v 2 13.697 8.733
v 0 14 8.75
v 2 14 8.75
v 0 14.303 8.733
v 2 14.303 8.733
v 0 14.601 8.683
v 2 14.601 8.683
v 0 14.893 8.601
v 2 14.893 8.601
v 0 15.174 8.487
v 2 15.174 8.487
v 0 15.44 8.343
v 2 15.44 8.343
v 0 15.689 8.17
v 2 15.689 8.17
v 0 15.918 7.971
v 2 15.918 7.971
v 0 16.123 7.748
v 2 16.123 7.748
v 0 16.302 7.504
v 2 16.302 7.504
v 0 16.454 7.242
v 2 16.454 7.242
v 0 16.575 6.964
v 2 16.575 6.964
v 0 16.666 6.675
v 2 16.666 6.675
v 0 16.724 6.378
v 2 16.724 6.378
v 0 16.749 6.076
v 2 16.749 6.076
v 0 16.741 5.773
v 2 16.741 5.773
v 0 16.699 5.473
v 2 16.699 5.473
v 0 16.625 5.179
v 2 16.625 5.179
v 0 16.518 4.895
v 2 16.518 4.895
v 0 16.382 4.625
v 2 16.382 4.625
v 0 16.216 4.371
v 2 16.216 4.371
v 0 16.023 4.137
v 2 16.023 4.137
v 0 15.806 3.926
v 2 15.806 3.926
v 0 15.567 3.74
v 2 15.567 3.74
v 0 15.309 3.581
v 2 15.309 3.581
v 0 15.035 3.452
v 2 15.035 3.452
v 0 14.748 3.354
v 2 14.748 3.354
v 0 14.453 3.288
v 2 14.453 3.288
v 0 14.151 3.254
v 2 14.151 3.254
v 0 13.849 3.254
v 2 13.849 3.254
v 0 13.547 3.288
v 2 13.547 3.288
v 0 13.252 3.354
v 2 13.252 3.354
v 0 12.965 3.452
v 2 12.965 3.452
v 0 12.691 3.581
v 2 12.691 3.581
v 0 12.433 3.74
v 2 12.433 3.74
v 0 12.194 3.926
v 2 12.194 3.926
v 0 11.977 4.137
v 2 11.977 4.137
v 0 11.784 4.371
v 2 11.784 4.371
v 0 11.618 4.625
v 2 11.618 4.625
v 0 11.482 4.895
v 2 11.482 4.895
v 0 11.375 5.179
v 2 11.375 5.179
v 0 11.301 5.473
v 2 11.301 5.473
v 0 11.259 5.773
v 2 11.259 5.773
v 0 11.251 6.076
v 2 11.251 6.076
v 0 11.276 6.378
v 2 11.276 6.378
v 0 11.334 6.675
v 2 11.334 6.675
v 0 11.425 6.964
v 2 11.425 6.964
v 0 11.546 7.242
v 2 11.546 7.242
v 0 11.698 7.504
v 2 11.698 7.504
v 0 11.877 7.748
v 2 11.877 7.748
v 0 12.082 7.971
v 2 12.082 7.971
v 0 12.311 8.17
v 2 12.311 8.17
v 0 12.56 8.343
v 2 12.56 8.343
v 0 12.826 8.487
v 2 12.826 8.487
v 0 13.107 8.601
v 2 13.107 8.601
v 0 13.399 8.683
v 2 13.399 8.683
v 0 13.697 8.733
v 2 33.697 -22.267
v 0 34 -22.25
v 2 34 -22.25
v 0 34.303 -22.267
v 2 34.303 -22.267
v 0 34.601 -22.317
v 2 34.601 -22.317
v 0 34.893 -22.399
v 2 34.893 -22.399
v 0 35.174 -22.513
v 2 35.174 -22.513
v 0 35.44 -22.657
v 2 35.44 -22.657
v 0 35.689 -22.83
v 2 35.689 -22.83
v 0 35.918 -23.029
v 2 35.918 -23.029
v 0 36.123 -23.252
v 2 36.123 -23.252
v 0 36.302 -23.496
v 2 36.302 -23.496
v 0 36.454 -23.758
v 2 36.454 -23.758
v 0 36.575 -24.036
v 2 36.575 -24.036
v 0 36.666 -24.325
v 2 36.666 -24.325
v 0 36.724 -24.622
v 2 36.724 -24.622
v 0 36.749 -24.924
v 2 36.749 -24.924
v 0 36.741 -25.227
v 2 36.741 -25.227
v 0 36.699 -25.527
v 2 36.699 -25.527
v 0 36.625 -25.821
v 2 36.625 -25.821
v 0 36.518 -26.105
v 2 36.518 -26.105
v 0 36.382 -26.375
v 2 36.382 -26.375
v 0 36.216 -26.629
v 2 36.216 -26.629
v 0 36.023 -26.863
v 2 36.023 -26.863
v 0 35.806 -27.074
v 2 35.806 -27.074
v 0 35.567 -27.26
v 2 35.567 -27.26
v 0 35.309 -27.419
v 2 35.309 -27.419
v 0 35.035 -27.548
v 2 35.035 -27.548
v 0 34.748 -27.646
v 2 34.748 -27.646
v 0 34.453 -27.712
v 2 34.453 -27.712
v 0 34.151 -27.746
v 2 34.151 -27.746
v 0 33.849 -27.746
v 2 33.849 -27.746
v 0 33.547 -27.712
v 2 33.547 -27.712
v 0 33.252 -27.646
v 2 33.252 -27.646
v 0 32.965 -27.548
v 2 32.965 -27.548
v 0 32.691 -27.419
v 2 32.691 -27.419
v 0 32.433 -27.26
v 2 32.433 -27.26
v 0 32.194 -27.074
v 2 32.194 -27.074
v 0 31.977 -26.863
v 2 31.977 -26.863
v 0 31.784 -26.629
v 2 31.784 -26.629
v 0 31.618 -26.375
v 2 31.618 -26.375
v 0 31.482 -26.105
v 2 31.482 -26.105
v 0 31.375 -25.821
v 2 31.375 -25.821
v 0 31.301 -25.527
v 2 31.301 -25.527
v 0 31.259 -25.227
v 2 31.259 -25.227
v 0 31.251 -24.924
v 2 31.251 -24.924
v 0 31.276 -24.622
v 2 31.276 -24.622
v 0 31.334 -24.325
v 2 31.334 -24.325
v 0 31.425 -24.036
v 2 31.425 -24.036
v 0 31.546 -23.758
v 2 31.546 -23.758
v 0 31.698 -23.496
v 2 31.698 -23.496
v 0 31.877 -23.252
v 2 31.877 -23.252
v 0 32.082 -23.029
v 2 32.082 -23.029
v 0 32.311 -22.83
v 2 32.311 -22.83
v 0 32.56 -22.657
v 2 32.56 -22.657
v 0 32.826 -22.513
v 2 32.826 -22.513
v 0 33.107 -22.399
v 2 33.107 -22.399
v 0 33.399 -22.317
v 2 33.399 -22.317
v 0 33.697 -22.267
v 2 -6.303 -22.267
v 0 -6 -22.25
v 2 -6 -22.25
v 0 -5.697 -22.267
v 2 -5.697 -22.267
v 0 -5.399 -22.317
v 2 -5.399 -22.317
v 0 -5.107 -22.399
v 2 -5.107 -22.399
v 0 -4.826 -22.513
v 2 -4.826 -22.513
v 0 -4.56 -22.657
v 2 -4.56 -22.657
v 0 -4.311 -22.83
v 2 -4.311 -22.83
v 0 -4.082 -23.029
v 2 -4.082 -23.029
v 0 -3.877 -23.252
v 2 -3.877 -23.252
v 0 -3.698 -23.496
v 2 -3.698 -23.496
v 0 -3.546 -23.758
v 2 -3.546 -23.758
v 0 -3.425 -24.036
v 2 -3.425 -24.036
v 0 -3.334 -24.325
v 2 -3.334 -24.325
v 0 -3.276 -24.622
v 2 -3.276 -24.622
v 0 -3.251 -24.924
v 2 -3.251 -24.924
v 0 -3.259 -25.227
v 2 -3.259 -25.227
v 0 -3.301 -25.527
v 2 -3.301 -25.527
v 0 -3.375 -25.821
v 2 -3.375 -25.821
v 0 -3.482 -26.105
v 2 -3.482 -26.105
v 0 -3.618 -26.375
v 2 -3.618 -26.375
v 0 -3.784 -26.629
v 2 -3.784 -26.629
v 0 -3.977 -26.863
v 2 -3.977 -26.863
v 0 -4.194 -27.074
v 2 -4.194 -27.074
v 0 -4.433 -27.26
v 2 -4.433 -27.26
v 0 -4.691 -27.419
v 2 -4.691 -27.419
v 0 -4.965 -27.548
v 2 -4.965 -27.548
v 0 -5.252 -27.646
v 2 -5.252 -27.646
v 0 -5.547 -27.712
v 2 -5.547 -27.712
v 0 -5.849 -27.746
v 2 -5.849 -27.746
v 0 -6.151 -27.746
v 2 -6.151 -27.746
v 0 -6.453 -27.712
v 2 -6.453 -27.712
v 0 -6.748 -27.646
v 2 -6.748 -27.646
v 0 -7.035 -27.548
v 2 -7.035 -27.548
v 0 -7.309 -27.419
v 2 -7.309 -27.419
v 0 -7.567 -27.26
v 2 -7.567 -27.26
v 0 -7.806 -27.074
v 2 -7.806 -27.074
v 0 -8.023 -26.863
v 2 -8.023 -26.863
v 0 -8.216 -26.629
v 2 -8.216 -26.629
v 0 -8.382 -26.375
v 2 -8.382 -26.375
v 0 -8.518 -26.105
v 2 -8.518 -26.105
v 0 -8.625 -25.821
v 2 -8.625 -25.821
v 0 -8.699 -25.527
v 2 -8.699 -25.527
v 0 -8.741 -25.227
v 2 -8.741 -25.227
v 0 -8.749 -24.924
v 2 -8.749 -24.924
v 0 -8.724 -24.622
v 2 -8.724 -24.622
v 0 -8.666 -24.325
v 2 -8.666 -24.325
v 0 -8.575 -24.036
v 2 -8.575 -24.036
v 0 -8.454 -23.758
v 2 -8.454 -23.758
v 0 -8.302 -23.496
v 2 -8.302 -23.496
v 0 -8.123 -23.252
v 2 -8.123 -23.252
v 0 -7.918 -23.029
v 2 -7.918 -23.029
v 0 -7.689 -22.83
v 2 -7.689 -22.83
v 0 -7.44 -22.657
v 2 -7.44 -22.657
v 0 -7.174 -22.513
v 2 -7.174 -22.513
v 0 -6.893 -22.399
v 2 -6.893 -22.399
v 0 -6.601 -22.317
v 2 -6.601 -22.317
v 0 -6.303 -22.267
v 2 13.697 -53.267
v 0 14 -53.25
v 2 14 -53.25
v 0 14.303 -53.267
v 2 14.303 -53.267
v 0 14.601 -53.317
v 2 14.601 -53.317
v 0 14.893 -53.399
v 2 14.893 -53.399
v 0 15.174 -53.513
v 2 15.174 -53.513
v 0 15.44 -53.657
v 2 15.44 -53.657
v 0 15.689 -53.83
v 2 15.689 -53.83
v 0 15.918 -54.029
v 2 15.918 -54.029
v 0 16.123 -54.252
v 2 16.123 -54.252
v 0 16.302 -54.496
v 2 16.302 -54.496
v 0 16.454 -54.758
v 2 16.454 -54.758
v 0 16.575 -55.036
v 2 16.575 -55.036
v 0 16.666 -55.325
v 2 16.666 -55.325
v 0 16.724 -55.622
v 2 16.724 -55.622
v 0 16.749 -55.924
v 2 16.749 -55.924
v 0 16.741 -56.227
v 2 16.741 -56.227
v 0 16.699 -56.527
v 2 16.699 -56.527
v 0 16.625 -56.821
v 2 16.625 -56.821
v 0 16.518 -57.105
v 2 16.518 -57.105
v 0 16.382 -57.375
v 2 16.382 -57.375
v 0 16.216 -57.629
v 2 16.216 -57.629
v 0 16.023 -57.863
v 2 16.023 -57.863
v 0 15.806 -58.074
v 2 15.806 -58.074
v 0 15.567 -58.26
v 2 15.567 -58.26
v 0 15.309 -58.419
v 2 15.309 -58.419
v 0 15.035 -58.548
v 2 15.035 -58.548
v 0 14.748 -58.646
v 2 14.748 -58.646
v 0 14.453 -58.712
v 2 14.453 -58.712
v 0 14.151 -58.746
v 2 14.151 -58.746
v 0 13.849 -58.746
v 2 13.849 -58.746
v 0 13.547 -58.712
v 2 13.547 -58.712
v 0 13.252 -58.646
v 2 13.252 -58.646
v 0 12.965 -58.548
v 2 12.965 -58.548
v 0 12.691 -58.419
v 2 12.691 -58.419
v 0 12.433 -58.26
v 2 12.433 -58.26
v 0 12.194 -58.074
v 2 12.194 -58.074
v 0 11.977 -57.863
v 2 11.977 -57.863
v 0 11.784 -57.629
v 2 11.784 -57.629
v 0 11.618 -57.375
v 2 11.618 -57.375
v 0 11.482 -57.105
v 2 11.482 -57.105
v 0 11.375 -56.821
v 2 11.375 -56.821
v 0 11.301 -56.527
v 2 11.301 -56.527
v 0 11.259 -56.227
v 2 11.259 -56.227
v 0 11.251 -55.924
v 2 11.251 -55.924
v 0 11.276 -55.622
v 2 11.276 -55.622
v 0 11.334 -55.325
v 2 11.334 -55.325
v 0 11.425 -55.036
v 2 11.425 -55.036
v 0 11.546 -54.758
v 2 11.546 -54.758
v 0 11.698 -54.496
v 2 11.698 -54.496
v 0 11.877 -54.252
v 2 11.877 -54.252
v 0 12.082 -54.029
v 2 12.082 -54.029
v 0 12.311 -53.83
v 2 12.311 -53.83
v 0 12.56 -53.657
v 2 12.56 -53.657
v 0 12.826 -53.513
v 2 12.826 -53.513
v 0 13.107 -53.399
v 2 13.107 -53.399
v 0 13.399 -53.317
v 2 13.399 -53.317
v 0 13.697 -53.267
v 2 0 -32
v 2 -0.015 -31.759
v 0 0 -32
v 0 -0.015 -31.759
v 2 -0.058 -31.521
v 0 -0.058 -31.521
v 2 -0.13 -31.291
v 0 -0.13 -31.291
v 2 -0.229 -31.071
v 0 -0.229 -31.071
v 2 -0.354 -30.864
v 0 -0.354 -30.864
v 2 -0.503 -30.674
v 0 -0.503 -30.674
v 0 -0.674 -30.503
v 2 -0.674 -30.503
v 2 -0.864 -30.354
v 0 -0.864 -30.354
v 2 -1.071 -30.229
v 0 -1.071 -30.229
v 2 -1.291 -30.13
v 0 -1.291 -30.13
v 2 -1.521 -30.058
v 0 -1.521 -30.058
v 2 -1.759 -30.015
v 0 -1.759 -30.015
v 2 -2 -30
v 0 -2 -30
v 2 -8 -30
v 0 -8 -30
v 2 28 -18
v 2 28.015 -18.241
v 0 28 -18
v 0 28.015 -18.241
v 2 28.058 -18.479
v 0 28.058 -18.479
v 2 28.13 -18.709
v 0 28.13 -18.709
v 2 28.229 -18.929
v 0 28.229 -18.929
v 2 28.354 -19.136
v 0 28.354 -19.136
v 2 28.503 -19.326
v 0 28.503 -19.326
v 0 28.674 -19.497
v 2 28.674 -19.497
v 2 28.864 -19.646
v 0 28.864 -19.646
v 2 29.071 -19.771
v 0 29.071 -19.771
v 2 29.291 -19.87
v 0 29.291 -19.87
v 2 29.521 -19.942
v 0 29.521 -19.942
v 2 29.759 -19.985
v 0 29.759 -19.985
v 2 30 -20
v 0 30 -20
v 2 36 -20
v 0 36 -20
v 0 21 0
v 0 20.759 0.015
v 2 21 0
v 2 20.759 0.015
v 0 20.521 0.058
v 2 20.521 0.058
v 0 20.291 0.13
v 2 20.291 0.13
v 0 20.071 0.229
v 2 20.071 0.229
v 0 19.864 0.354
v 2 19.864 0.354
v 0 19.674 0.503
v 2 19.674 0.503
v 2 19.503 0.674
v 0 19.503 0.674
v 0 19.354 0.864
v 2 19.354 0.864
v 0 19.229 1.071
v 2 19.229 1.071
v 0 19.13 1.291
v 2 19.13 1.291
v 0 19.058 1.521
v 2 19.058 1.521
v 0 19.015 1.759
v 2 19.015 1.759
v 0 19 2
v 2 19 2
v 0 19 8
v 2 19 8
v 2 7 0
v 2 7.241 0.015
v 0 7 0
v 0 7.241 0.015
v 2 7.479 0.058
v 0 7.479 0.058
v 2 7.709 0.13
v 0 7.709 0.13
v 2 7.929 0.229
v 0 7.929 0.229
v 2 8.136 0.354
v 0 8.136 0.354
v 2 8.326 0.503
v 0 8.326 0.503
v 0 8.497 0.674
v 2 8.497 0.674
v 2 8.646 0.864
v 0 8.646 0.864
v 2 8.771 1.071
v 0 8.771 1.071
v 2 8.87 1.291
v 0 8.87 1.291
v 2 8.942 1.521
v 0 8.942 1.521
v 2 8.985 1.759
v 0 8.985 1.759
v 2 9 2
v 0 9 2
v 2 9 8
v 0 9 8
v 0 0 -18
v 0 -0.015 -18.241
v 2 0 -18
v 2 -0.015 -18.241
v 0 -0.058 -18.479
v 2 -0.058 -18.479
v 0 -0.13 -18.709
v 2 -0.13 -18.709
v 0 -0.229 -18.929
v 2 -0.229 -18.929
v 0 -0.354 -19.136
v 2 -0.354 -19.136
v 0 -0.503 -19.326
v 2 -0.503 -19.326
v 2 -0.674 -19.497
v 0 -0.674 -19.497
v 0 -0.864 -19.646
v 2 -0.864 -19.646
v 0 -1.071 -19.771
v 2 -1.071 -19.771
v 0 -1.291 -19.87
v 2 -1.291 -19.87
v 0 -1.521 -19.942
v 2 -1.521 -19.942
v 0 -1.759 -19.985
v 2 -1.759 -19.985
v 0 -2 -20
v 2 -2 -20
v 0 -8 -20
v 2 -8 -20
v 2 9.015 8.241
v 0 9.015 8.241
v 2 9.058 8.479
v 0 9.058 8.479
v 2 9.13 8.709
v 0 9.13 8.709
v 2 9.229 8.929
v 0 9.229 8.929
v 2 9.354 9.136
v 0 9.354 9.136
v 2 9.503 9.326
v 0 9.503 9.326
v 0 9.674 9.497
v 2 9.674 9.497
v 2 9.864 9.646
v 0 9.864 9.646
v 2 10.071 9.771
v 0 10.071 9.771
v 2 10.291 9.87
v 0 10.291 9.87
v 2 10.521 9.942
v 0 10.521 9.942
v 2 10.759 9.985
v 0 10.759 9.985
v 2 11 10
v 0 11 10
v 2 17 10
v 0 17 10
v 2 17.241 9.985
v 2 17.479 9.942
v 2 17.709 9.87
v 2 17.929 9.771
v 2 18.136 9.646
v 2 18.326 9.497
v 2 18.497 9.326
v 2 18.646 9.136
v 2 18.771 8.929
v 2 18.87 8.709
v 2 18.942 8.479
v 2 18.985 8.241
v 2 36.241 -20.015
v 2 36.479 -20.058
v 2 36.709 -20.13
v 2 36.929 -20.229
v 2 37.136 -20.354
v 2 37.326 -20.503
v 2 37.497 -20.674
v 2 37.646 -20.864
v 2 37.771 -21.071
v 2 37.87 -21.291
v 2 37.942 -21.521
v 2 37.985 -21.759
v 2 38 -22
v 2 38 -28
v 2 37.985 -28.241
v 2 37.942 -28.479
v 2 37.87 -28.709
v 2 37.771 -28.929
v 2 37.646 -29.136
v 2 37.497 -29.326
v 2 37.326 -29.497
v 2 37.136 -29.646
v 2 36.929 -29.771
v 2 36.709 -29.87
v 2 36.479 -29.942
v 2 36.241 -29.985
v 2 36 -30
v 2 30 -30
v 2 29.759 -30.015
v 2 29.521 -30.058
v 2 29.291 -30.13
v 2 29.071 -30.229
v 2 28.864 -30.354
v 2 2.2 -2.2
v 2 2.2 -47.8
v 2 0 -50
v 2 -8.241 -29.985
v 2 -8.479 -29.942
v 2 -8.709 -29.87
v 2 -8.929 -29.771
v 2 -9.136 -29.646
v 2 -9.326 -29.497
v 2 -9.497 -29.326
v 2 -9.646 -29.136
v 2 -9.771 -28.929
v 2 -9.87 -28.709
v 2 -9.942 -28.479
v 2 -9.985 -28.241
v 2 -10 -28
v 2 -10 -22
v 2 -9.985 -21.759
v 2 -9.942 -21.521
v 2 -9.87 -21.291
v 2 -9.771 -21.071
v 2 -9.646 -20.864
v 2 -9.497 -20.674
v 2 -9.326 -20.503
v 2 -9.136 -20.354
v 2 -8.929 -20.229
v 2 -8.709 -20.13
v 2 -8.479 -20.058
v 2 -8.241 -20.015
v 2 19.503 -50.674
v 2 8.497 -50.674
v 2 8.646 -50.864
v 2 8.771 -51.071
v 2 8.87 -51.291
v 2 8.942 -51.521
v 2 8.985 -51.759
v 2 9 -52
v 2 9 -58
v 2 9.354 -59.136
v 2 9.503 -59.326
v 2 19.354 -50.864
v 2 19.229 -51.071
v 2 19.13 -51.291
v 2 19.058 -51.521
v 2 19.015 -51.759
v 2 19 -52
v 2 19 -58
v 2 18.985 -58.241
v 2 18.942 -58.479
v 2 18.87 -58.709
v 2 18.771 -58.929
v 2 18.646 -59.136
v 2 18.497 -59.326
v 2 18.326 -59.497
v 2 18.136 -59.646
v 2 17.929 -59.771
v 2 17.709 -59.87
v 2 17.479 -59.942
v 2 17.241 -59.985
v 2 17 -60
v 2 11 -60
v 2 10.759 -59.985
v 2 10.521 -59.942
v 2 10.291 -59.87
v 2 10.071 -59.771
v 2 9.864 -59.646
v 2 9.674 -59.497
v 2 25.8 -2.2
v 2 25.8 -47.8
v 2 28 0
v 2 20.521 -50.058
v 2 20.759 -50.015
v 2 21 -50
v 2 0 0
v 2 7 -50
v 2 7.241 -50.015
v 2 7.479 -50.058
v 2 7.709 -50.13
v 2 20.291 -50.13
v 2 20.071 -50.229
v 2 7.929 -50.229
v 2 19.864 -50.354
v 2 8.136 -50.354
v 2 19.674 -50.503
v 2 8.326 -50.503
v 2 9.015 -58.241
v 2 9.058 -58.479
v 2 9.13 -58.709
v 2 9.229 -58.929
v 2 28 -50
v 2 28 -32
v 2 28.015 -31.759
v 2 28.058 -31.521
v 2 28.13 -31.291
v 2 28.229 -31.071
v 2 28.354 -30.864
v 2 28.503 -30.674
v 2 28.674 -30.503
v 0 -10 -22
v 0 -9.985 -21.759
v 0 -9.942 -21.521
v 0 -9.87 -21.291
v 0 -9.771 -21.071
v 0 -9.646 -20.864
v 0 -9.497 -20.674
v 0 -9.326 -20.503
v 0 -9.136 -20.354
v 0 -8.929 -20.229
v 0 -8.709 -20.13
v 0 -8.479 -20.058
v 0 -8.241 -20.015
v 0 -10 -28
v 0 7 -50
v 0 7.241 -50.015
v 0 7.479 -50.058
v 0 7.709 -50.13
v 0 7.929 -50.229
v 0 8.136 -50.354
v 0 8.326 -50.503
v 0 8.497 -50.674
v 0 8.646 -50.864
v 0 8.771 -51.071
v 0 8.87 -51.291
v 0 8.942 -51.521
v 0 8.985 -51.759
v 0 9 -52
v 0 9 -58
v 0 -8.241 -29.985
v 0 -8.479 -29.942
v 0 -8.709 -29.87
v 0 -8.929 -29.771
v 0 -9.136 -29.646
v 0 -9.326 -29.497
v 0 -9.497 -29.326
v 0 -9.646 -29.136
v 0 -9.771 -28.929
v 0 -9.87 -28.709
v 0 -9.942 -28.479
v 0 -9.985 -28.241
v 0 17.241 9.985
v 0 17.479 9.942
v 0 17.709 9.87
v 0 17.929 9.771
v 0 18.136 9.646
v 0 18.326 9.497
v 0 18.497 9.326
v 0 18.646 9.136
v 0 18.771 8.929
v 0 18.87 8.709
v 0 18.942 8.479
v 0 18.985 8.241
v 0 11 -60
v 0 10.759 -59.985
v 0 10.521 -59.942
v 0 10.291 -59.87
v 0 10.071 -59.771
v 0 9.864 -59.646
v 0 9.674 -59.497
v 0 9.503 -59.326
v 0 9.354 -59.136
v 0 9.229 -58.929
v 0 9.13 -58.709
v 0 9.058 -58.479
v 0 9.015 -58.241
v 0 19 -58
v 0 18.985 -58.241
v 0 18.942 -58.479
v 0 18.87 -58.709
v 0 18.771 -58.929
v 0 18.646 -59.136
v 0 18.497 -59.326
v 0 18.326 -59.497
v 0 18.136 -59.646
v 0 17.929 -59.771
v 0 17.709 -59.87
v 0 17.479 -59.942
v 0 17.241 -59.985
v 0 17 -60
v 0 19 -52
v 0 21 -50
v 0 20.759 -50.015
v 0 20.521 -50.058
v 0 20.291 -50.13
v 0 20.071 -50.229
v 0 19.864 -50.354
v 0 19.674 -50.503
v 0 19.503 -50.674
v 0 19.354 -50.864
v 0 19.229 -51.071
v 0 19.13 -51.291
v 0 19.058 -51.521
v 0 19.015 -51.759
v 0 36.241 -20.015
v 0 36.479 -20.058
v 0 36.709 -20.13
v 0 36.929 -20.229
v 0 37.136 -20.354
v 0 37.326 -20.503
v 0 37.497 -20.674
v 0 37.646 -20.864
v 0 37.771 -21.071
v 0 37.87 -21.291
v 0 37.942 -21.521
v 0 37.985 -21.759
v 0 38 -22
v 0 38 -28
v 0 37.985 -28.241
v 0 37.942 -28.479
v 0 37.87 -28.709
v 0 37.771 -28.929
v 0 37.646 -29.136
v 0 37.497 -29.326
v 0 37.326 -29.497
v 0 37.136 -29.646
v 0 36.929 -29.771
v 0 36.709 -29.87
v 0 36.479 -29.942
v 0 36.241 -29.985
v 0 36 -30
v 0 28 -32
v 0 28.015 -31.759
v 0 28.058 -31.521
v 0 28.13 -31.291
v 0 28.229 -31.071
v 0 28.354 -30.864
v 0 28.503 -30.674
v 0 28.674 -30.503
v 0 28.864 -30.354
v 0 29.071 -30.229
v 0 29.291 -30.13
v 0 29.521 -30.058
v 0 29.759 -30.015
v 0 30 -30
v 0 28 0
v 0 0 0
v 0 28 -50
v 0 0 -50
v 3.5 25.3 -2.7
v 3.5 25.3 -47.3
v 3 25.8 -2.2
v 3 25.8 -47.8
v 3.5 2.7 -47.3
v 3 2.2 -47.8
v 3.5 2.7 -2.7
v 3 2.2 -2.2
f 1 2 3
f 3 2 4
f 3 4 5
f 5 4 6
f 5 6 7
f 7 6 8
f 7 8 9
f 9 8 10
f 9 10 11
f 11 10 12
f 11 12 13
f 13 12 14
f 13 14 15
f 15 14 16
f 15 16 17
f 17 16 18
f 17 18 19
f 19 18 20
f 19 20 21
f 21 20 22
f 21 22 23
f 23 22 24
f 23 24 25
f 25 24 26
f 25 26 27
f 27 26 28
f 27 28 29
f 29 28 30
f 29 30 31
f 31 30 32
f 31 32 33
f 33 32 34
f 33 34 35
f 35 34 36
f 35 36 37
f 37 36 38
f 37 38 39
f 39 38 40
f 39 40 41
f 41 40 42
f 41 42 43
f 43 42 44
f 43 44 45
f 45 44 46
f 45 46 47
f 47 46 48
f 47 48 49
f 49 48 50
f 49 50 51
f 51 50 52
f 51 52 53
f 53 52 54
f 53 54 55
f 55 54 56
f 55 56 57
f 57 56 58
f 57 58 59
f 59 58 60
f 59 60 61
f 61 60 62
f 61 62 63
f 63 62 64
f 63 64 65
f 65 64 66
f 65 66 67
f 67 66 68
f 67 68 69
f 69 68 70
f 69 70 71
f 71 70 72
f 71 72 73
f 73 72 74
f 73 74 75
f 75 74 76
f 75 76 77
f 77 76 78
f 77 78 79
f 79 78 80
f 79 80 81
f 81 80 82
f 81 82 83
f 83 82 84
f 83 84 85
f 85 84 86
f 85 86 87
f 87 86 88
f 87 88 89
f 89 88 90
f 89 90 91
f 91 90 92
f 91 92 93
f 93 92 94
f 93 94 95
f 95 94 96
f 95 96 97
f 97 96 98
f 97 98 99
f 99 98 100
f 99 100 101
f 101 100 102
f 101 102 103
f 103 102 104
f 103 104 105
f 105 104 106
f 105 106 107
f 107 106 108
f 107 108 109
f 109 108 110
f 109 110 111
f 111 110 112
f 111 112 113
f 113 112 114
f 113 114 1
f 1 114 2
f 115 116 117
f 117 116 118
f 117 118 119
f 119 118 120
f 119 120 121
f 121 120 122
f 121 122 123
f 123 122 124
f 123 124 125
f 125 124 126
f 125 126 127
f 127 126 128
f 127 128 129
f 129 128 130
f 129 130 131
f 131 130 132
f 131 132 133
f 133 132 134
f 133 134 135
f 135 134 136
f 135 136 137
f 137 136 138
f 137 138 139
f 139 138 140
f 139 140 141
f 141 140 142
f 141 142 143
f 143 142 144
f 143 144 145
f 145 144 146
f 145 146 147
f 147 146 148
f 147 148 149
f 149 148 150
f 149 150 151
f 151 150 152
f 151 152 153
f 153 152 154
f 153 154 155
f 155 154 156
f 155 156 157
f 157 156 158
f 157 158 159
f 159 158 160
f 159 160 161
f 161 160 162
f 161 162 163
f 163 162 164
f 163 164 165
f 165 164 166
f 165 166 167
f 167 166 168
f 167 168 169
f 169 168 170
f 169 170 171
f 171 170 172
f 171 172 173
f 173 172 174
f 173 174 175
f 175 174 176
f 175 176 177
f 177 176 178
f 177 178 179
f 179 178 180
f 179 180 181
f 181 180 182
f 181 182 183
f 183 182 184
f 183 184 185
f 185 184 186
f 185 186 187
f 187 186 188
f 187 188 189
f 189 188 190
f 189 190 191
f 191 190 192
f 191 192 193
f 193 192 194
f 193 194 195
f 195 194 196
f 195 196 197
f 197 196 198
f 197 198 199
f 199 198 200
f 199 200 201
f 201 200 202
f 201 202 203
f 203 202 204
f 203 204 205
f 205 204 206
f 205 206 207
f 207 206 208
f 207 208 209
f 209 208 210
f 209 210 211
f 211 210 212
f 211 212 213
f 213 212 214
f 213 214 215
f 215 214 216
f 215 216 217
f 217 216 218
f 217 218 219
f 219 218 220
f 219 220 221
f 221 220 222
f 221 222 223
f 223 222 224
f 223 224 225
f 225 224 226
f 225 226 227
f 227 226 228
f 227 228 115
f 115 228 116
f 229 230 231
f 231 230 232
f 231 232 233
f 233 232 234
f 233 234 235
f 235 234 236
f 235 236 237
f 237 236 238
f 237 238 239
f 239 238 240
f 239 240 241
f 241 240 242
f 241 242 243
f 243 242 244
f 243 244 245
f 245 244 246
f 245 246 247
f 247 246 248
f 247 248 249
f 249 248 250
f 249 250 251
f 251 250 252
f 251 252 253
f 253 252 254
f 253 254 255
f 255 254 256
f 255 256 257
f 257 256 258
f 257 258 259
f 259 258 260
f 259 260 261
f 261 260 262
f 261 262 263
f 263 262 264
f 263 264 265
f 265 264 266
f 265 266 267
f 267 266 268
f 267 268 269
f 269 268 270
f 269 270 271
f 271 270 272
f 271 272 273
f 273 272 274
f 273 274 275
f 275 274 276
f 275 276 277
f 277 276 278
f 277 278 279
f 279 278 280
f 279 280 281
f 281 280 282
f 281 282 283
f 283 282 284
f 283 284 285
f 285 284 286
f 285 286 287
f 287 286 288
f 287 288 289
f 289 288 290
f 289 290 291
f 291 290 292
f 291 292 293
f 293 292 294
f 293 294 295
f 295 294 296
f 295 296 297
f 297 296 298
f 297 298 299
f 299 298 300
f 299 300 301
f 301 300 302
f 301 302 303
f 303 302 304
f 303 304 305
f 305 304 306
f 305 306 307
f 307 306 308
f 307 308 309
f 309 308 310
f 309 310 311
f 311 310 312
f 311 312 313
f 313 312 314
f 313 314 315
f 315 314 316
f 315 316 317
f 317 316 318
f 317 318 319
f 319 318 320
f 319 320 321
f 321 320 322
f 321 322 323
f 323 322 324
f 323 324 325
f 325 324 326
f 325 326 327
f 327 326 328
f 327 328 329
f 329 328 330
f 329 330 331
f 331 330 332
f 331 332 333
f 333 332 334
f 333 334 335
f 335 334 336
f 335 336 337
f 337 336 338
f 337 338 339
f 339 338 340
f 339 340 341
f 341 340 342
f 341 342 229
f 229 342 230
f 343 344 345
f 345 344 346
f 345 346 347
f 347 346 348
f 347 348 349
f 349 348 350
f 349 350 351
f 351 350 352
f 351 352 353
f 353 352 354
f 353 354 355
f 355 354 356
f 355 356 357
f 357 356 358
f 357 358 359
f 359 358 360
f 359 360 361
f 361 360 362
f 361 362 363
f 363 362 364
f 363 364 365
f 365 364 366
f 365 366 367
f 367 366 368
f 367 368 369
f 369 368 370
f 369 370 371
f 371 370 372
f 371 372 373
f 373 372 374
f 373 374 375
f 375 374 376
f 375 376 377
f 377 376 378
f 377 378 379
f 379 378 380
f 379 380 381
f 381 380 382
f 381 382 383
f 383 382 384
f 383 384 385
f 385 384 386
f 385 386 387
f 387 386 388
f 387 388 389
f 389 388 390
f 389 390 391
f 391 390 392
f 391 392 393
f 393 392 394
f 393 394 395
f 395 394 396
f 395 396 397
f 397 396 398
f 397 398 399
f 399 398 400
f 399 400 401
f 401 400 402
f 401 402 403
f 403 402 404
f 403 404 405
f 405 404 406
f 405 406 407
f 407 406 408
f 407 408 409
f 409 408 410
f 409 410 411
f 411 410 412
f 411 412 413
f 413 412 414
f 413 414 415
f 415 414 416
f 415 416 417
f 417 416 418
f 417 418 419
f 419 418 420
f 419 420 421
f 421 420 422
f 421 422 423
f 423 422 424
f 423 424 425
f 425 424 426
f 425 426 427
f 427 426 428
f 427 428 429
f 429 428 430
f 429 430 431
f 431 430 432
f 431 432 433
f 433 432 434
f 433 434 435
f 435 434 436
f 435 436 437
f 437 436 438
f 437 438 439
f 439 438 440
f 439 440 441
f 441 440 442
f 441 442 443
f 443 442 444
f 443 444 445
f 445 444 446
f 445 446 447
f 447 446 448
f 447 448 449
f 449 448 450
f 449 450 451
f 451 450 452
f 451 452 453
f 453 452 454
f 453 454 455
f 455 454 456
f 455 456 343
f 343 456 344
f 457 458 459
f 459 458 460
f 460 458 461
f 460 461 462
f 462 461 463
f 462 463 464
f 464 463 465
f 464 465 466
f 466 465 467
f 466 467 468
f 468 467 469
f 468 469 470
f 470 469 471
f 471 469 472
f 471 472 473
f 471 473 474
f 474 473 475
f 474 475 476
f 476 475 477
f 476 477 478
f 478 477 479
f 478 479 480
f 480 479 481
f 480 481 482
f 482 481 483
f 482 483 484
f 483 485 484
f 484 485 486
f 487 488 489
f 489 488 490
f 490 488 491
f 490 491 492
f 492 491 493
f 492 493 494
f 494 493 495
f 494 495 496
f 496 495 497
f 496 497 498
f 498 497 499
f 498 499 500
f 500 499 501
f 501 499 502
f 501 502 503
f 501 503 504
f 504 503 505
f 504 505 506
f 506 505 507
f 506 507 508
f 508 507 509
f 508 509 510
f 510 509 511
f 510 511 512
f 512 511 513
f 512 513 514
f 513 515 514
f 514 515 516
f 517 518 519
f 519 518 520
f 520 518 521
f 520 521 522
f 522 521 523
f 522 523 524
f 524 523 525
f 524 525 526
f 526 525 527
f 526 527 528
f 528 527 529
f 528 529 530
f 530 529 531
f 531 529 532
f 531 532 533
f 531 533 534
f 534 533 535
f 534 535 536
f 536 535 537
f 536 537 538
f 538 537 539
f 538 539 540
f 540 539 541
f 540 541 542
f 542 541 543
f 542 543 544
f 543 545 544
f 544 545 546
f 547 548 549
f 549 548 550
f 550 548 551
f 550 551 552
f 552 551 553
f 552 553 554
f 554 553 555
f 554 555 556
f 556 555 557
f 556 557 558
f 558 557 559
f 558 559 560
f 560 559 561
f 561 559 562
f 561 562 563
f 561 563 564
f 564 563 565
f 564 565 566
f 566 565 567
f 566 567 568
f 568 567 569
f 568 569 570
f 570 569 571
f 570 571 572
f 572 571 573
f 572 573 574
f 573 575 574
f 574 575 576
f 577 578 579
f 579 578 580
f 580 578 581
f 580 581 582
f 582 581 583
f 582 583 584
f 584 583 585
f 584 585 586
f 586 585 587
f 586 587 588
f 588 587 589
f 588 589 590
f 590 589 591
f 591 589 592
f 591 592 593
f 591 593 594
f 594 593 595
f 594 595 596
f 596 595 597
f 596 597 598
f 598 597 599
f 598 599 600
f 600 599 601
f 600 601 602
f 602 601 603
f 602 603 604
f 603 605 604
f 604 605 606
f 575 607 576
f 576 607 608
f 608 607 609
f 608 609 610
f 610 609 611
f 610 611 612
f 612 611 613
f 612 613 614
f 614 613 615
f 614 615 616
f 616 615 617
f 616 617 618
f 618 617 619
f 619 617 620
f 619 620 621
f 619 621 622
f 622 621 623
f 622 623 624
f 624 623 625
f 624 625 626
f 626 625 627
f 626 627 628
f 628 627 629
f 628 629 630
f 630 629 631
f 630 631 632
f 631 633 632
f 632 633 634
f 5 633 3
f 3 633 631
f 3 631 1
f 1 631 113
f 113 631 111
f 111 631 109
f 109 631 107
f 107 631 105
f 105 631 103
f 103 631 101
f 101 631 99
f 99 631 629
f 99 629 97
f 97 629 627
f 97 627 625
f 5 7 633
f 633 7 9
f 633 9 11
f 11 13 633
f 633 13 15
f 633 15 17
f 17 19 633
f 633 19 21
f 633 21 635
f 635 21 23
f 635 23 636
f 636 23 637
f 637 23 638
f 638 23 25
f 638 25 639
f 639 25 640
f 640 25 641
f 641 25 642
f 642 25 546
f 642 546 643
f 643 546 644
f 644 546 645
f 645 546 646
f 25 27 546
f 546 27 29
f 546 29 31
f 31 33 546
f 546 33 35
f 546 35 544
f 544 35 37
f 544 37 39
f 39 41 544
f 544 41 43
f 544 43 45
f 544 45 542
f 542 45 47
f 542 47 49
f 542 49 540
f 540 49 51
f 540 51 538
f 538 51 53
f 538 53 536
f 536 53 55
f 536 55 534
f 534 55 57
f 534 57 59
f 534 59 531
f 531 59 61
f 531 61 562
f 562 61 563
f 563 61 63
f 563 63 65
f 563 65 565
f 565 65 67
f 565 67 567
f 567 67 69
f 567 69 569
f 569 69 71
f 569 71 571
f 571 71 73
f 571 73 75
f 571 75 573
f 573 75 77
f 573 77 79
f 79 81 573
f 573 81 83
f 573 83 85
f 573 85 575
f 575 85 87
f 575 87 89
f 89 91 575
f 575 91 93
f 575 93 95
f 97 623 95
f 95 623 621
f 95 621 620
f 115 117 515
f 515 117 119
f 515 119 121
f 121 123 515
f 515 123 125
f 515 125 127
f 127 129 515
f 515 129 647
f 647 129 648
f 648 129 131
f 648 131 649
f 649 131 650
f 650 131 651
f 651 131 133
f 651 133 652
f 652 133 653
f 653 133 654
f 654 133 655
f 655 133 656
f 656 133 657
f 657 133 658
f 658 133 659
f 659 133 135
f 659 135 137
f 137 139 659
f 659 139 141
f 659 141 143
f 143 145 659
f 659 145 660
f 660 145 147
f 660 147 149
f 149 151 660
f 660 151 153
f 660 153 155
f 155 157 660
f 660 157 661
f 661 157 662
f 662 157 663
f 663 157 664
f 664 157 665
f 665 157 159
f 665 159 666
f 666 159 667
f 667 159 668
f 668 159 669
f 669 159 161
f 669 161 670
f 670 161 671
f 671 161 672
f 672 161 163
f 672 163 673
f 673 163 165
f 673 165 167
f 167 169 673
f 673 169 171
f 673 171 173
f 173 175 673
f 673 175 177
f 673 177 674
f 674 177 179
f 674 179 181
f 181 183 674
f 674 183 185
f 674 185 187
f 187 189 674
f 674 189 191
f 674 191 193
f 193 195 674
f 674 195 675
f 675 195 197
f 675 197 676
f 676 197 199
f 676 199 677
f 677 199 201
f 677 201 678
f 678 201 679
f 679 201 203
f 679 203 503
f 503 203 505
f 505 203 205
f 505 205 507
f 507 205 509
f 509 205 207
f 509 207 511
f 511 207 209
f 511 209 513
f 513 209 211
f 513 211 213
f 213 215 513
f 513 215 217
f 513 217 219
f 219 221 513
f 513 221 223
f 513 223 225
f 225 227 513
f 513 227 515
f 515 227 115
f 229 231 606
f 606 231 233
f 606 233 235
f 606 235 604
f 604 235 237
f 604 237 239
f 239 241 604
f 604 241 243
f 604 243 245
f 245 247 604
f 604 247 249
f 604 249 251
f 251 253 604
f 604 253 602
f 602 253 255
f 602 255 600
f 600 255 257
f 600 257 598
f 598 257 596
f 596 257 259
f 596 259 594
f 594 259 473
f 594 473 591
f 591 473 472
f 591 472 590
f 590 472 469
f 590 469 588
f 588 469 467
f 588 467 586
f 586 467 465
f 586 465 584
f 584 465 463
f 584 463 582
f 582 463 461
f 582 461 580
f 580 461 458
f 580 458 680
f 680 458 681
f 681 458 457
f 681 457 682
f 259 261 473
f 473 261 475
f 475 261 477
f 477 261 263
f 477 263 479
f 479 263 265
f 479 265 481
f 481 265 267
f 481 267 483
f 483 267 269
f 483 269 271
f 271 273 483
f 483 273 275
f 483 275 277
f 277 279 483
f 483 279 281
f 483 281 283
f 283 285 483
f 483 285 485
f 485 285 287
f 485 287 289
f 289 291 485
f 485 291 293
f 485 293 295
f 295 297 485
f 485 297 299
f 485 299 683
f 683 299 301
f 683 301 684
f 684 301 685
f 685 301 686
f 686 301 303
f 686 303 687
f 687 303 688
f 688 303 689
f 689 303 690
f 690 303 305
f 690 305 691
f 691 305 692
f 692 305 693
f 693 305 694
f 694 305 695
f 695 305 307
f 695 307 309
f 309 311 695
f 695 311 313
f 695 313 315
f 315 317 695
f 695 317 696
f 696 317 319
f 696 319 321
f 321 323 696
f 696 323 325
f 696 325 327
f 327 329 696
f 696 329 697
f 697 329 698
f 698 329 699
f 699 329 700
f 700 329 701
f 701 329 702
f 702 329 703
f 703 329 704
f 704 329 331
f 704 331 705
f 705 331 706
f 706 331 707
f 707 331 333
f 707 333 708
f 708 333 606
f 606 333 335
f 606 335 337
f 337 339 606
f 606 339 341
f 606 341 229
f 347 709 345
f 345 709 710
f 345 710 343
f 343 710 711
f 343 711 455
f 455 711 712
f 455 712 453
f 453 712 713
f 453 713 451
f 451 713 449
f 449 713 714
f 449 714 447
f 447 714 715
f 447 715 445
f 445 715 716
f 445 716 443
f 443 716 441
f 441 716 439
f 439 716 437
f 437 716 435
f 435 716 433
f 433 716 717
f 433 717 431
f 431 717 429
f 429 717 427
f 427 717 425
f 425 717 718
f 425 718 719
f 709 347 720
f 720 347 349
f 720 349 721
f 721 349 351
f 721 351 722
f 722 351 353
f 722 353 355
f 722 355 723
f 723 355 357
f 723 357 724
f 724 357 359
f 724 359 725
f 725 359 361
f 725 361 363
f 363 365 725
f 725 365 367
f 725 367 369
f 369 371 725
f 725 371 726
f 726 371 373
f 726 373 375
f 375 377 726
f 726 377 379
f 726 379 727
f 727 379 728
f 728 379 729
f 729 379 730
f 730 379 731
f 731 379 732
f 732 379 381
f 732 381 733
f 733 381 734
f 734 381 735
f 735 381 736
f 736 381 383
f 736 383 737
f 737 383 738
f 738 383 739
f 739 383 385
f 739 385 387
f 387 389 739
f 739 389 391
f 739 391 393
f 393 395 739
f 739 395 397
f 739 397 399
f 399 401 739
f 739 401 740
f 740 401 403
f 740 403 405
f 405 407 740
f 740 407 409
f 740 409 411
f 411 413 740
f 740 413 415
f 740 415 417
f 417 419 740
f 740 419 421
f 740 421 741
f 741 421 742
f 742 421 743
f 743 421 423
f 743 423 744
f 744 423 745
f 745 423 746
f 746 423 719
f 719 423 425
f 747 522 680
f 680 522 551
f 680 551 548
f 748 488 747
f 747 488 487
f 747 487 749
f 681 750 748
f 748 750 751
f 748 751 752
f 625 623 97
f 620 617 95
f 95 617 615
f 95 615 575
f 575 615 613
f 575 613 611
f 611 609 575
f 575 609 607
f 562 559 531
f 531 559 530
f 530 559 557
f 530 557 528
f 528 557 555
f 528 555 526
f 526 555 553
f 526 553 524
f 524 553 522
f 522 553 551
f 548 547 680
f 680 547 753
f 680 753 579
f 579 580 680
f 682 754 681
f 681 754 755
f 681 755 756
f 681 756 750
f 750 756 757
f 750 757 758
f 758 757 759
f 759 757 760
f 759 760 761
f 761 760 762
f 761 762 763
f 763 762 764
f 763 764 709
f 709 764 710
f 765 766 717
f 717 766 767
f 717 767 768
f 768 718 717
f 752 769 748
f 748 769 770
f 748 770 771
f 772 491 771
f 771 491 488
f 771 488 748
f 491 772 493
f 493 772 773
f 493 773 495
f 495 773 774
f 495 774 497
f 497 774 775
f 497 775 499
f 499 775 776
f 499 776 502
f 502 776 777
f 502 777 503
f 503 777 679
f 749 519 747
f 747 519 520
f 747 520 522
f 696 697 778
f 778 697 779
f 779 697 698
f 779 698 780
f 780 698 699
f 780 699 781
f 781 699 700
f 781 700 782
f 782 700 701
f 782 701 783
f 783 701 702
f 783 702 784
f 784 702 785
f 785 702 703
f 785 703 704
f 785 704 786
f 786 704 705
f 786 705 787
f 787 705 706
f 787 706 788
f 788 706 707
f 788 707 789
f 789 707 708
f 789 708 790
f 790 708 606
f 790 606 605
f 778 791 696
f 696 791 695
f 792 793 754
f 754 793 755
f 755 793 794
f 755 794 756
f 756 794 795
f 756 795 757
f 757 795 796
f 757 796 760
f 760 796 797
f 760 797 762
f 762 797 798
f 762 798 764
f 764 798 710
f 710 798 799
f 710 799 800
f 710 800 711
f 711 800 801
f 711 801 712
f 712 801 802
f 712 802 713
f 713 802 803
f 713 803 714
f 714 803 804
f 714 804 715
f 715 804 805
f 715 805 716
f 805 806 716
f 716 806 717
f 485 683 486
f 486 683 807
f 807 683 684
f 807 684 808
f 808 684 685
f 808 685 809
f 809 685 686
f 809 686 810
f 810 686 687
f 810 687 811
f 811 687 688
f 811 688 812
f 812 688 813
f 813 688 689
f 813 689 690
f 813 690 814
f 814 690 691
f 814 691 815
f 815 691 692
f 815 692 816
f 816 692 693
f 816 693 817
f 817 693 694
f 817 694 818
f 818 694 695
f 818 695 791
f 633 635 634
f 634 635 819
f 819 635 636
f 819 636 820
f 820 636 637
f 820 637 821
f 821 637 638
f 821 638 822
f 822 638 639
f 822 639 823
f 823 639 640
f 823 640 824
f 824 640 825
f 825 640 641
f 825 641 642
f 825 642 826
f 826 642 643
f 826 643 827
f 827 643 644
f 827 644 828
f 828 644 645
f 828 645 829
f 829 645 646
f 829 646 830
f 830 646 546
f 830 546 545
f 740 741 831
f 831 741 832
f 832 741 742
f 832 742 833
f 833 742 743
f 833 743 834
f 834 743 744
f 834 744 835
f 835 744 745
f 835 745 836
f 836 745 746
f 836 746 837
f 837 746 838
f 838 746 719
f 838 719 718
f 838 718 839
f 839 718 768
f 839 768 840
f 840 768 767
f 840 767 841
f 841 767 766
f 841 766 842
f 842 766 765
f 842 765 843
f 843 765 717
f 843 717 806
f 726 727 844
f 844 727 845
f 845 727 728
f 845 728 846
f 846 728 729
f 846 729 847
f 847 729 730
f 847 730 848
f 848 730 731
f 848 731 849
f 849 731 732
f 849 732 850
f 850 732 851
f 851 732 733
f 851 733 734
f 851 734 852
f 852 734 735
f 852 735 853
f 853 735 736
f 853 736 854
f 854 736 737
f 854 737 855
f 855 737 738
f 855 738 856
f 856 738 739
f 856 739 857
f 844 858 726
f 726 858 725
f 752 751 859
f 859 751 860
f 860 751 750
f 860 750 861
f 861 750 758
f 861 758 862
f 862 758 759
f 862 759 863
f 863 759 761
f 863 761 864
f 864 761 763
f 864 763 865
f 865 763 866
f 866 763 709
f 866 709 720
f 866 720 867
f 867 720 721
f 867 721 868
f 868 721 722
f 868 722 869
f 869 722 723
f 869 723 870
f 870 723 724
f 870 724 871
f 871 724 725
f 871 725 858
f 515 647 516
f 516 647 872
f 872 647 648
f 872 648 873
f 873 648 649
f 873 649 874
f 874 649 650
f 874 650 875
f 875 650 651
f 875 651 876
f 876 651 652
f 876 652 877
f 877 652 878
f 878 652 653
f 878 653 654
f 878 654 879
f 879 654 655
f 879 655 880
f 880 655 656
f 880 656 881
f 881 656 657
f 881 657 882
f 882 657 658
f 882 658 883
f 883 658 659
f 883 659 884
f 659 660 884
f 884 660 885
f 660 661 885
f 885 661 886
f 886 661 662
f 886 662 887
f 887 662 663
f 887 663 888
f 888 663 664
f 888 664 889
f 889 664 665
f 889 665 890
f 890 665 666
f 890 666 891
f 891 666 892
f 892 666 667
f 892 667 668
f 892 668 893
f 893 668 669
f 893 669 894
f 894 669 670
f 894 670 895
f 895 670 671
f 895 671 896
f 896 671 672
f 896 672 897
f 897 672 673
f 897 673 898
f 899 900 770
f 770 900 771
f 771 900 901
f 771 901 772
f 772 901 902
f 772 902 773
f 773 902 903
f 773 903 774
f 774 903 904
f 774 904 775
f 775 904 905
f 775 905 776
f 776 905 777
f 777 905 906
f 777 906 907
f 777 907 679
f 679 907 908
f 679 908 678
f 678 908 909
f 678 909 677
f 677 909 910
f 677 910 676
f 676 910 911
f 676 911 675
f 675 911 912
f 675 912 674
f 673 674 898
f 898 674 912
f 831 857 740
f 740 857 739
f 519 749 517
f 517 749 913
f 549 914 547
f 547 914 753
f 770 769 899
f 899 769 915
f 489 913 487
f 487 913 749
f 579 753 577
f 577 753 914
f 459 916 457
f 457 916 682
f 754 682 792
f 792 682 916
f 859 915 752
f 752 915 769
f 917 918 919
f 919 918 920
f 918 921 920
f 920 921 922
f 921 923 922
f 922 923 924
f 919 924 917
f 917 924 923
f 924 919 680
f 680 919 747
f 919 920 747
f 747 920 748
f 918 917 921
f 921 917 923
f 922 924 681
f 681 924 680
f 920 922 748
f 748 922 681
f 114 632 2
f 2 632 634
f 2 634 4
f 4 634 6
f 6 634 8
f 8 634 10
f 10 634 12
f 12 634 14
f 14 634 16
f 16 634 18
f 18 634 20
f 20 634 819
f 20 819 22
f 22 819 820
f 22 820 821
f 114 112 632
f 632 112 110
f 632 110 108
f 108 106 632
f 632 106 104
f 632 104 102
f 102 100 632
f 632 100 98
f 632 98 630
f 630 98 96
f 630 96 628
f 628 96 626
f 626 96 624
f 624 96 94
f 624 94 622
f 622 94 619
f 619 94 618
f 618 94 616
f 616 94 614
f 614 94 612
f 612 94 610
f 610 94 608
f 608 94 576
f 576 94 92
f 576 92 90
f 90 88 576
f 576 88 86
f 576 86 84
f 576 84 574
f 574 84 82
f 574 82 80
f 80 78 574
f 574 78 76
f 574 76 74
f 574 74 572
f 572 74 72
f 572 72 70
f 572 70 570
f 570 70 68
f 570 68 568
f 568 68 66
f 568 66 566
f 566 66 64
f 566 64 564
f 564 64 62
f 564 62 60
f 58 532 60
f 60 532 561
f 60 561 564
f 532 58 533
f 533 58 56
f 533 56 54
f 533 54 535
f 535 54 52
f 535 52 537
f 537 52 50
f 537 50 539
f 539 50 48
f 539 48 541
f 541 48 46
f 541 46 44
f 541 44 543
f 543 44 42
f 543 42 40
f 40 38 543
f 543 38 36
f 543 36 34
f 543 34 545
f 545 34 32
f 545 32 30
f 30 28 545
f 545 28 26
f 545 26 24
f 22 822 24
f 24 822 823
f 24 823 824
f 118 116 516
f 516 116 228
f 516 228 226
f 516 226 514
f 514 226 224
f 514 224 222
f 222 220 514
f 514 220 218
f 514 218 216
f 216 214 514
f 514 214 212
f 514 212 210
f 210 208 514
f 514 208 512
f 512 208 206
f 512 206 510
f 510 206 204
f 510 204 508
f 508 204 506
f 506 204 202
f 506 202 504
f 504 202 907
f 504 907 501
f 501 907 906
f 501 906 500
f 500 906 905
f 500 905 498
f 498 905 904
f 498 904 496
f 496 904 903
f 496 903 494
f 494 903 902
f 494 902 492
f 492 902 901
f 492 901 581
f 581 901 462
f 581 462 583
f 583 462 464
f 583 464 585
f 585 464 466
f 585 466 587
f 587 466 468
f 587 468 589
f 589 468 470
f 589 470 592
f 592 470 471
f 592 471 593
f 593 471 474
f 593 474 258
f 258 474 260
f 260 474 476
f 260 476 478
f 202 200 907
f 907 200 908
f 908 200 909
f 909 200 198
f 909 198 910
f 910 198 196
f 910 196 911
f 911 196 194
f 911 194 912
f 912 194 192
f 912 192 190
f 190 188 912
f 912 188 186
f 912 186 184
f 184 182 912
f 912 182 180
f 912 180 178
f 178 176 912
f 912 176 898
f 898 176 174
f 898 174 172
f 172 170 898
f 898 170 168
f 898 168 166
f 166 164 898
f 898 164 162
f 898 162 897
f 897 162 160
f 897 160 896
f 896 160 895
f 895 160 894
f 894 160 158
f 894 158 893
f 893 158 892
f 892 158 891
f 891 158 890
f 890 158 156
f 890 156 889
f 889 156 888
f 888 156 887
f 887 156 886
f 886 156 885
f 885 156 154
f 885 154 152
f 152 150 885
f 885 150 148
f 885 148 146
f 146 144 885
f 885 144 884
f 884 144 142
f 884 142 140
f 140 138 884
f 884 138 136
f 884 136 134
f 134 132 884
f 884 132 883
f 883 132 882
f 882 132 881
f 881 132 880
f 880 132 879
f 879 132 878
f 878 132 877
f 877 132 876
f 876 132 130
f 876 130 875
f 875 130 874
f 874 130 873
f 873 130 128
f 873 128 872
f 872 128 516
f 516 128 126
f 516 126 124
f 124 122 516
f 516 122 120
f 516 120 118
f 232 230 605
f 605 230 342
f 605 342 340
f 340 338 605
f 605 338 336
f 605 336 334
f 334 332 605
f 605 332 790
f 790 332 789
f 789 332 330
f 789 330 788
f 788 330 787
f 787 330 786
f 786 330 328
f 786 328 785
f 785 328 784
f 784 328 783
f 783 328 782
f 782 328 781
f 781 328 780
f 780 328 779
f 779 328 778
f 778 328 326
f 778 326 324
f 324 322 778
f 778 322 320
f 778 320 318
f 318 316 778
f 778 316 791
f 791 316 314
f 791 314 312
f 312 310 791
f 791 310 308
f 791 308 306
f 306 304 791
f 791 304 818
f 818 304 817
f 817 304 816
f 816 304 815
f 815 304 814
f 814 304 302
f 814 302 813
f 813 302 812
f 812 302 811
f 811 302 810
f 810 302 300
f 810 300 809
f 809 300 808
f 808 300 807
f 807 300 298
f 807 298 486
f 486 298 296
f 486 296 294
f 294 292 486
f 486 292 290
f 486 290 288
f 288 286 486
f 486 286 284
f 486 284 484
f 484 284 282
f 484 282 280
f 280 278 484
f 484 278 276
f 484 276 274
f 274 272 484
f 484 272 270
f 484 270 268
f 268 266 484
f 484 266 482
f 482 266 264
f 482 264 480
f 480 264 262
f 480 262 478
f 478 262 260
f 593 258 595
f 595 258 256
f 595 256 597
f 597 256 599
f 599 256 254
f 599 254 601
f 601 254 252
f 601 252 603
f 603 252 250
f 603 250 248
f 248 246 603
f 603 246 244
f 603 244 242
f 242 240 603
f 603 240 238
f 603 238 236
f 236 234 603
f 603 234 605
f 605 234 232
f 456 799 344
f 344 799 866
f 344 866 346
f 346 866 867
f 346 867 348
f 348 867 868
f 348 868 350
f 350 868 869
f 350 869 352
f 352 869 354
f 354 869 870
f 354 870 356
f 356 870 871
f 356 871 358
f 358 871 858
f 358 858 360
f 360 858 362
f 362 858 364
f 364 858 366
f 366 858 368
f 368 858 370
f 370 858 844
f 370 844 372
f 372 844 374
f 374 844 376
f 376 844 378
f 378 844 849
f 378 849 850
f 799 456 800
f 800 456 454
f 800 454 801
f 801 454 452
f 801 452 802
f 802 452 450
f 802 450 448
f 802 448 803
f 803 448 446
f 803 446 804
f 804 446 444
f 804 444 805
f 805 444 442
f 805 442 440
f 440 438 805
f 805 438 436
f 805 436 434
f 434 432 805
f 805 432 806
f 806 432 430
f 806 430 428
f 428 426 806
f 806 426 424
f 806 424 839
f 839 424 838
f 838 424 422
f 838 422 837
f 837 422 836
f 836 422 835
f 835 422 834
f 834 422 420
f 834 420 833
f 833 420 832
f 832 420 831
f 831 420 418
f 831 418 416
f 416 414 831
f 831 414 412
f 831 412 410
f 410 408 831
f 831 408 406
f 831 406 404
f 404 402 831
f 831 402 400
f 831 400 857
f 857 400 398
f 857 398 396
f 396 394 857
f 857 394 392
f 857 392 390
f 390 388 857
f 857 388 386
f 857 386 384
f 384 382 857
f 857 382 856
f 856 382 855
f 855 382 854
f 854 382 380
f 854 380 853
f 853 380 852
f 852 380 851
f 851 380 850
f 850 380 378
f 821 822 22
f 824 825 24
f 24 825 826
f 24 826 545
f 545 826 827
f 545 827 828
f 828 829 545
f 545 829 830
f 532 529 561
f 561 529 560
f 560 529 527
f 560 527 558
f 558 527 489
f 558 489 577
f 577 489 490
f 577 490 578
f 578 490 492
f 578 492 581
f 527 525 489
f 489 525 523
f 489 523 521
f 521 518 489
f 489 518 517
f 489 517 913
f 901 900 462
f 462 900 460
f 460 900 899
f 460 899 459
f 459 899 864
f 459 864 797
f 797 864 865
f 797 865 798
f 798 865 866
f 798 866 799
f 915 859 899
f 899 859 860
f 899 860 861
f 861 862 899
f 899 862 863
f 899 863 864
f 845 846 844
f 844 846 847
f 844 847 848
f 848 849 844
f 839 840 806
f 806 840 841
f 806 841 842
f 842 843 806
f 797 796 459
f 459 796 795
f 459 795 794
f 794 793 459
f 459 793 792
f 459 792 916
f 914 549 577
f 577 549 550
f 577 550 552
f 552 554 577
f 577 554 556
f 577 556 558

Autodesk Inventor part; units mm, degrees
ref_plane "YZ Plane" through (0, 0, 0) normal (1, 0, 0) x (0, 1, 0)
ref_plane "XZ Plane" through (0, 0, 0) normal (0, 1, 0) x (-1, 0, 0)
ref_plane "XY Plane" through (0, 0, 0) normal (0, 0, 1) x (1, 0, 0)
sketch "Skizze1" plane through (0, 0, 0) normal (1, 0, 0) x (0, 1, 0)
  line L0 (0, 0) -> (28, 0)
  line L1 (28, 0) -> (28, -50)
  line L2 (28, -50) -> (0, -50)
  line L3 (0, -50) -> (0, 0)
  dimension "d0" = 50
  dimension "d1" = 28
extrude "Extrusion1" add sketch "Skizze1" along normal blind 2
sketch "Skizze2" plane through (2, 0, 0) normal (1, 0, 0) x (0, 0, -1)
  line L0 (2.2, 25.8) -> (47.8, 25.8)
  line L1 (47.8, 25.8) -> (47.8, 2.2)
  line L2 (47.8, 2.2) -> (2.2, 2.2)
  line L3 (2.2, 2.2) -> (2.2, 25.8)
  line L4 (0, 28) -> (0, 0) projected
  line L5 (0, 0) -> (50, 0) projected
  dimension "d4" = 45.6
  dimension "d5" = 23.6
  dimension "d6" = 2.2
  dimension "d7" = 2.2
extrude "Extrusion2" add sketch "Skizze2" along normal blind 1.5
chamfer "Fase1" distance 0.5 angle 45 4 edges at (3.5, 2.2, -25) (3.5, 14, -2.2) (3.5, 14, -47.8) (3.5, 25.8, -25)
sketch "Skizze3" plane through (0, 0, 0) normal (-1, 0, 0) x (0, 0, 1)
  line L0 (-50, 0) -> (-50, 28) projected
  line L1 (-50, 9) -> (-60, 9)
  line L2 (-60, 9) -> (-60, 19)
  line L3 (-60, 19) -> (-50, 19)
  line L4 (-50, 19) -> (-50, 9)
  line L5 (-50, 28) -> (0, 28) projected
  line L6 (-30, 28) -> (-20, 28)
  line L7 (-20, 28) -> (-20, 38)
  line L8 (-20, 38) -> (-30, 38)
  line L9 (-30, 38) -> (-30, 28)
  line L10 (-30, 0) -> (-20, 0)
  line L11 (-20, 0) -> (-20, -10)
  line L12 (-20, -10) -> (-30, -10)
  line L13 (-30, -10) -> (-30, 0)
  line L14 (0, 28) -> (0, 0) projected
  line L15 (0, 9) -> (10, 9)
  line L16 (10, 9) -> (10, 19)
  line L17 (10, 19) -> (0, 19)
  line L18 (0, 19) -> (0, 9)
  line L19 (0, 0) -> (-50, 0) projected
  point P0 (0, 19)
  dimension "d13" = 10
  dimension "d14" = 10
  dimension "d15" = 10
  dimension "d16" = 10
  dimension "d17" = 10
  dimension "d18" = 10
  dimension "d19" = 10
  dimension "d20" = 10
  dimension "d21" = 20
  dimension "d22" = 20
  dimension "d23" = 9
  dimension "d24" = 9
extrude "Extrusion3" add sketch "Skizze3" against normal blind 2 contours L1 L2 L3 L0 | L10 L11 L12 L13 | L9 L8 L7 L5 | L14 L17 L16 L15
fillet "Rundung1" radius 2 16 edges at (1, 28, -30) (1, 38, -30) (1, 38, -20) (1, 19, -50) (1, 19, -60) (1, 9, -60) (1, 19, 10) (1, -10, -30) (1, 9, -50) (1, -10, -20) (1, 9, 10) (1, 0, -20) (1, 9, 0) (1, 19, 0) (1, 28, -20) (1, 0, -30)
sketch "Skizze4" plane through (0, 0, 0) normal (-1, 0, 0) x (0, 0, 1)
  circle A0 centre (-25, 34) radius 2.75
  circle A1 centre (6, 14) radius 2.75
  circle A2 centre (-25, -6) radius 2.75
  circle A3 centre (-56, 14) radius 2.75
  line L0 (-30, 36) -> (-30, 30) projected
  line L1 (-52, 19) -> (-58, 19) projected
  line L2 (8, 19) -> (2, 19) projected
  line L3 (-30, -2) -> (-30, -8) projected
  line L4 (10, 11) -> (10, 17) projected
  line L5 (-28, -10) -> (-22, -10) projected
  line L6 (-60, 17) -> (-60, 11) projected
  line L7 (-22, 38) -> (-28, 38) projected
  point P0 (0, 0)
  dimension "d28" = 5.5
  dimension "d29" = 5
  dimension "d30" = 5
  dimension "d31" = 5
  dimension "d32" = 5
  dimension "d33" = 4
  dimension "d34" = 4
  dimension "d35" = 4
  dimension "d36" = 4
extrude "Extrusion4" cut sketch "Skizze4" against normal blind 2
properties part number "gehaeuse_deckel"
